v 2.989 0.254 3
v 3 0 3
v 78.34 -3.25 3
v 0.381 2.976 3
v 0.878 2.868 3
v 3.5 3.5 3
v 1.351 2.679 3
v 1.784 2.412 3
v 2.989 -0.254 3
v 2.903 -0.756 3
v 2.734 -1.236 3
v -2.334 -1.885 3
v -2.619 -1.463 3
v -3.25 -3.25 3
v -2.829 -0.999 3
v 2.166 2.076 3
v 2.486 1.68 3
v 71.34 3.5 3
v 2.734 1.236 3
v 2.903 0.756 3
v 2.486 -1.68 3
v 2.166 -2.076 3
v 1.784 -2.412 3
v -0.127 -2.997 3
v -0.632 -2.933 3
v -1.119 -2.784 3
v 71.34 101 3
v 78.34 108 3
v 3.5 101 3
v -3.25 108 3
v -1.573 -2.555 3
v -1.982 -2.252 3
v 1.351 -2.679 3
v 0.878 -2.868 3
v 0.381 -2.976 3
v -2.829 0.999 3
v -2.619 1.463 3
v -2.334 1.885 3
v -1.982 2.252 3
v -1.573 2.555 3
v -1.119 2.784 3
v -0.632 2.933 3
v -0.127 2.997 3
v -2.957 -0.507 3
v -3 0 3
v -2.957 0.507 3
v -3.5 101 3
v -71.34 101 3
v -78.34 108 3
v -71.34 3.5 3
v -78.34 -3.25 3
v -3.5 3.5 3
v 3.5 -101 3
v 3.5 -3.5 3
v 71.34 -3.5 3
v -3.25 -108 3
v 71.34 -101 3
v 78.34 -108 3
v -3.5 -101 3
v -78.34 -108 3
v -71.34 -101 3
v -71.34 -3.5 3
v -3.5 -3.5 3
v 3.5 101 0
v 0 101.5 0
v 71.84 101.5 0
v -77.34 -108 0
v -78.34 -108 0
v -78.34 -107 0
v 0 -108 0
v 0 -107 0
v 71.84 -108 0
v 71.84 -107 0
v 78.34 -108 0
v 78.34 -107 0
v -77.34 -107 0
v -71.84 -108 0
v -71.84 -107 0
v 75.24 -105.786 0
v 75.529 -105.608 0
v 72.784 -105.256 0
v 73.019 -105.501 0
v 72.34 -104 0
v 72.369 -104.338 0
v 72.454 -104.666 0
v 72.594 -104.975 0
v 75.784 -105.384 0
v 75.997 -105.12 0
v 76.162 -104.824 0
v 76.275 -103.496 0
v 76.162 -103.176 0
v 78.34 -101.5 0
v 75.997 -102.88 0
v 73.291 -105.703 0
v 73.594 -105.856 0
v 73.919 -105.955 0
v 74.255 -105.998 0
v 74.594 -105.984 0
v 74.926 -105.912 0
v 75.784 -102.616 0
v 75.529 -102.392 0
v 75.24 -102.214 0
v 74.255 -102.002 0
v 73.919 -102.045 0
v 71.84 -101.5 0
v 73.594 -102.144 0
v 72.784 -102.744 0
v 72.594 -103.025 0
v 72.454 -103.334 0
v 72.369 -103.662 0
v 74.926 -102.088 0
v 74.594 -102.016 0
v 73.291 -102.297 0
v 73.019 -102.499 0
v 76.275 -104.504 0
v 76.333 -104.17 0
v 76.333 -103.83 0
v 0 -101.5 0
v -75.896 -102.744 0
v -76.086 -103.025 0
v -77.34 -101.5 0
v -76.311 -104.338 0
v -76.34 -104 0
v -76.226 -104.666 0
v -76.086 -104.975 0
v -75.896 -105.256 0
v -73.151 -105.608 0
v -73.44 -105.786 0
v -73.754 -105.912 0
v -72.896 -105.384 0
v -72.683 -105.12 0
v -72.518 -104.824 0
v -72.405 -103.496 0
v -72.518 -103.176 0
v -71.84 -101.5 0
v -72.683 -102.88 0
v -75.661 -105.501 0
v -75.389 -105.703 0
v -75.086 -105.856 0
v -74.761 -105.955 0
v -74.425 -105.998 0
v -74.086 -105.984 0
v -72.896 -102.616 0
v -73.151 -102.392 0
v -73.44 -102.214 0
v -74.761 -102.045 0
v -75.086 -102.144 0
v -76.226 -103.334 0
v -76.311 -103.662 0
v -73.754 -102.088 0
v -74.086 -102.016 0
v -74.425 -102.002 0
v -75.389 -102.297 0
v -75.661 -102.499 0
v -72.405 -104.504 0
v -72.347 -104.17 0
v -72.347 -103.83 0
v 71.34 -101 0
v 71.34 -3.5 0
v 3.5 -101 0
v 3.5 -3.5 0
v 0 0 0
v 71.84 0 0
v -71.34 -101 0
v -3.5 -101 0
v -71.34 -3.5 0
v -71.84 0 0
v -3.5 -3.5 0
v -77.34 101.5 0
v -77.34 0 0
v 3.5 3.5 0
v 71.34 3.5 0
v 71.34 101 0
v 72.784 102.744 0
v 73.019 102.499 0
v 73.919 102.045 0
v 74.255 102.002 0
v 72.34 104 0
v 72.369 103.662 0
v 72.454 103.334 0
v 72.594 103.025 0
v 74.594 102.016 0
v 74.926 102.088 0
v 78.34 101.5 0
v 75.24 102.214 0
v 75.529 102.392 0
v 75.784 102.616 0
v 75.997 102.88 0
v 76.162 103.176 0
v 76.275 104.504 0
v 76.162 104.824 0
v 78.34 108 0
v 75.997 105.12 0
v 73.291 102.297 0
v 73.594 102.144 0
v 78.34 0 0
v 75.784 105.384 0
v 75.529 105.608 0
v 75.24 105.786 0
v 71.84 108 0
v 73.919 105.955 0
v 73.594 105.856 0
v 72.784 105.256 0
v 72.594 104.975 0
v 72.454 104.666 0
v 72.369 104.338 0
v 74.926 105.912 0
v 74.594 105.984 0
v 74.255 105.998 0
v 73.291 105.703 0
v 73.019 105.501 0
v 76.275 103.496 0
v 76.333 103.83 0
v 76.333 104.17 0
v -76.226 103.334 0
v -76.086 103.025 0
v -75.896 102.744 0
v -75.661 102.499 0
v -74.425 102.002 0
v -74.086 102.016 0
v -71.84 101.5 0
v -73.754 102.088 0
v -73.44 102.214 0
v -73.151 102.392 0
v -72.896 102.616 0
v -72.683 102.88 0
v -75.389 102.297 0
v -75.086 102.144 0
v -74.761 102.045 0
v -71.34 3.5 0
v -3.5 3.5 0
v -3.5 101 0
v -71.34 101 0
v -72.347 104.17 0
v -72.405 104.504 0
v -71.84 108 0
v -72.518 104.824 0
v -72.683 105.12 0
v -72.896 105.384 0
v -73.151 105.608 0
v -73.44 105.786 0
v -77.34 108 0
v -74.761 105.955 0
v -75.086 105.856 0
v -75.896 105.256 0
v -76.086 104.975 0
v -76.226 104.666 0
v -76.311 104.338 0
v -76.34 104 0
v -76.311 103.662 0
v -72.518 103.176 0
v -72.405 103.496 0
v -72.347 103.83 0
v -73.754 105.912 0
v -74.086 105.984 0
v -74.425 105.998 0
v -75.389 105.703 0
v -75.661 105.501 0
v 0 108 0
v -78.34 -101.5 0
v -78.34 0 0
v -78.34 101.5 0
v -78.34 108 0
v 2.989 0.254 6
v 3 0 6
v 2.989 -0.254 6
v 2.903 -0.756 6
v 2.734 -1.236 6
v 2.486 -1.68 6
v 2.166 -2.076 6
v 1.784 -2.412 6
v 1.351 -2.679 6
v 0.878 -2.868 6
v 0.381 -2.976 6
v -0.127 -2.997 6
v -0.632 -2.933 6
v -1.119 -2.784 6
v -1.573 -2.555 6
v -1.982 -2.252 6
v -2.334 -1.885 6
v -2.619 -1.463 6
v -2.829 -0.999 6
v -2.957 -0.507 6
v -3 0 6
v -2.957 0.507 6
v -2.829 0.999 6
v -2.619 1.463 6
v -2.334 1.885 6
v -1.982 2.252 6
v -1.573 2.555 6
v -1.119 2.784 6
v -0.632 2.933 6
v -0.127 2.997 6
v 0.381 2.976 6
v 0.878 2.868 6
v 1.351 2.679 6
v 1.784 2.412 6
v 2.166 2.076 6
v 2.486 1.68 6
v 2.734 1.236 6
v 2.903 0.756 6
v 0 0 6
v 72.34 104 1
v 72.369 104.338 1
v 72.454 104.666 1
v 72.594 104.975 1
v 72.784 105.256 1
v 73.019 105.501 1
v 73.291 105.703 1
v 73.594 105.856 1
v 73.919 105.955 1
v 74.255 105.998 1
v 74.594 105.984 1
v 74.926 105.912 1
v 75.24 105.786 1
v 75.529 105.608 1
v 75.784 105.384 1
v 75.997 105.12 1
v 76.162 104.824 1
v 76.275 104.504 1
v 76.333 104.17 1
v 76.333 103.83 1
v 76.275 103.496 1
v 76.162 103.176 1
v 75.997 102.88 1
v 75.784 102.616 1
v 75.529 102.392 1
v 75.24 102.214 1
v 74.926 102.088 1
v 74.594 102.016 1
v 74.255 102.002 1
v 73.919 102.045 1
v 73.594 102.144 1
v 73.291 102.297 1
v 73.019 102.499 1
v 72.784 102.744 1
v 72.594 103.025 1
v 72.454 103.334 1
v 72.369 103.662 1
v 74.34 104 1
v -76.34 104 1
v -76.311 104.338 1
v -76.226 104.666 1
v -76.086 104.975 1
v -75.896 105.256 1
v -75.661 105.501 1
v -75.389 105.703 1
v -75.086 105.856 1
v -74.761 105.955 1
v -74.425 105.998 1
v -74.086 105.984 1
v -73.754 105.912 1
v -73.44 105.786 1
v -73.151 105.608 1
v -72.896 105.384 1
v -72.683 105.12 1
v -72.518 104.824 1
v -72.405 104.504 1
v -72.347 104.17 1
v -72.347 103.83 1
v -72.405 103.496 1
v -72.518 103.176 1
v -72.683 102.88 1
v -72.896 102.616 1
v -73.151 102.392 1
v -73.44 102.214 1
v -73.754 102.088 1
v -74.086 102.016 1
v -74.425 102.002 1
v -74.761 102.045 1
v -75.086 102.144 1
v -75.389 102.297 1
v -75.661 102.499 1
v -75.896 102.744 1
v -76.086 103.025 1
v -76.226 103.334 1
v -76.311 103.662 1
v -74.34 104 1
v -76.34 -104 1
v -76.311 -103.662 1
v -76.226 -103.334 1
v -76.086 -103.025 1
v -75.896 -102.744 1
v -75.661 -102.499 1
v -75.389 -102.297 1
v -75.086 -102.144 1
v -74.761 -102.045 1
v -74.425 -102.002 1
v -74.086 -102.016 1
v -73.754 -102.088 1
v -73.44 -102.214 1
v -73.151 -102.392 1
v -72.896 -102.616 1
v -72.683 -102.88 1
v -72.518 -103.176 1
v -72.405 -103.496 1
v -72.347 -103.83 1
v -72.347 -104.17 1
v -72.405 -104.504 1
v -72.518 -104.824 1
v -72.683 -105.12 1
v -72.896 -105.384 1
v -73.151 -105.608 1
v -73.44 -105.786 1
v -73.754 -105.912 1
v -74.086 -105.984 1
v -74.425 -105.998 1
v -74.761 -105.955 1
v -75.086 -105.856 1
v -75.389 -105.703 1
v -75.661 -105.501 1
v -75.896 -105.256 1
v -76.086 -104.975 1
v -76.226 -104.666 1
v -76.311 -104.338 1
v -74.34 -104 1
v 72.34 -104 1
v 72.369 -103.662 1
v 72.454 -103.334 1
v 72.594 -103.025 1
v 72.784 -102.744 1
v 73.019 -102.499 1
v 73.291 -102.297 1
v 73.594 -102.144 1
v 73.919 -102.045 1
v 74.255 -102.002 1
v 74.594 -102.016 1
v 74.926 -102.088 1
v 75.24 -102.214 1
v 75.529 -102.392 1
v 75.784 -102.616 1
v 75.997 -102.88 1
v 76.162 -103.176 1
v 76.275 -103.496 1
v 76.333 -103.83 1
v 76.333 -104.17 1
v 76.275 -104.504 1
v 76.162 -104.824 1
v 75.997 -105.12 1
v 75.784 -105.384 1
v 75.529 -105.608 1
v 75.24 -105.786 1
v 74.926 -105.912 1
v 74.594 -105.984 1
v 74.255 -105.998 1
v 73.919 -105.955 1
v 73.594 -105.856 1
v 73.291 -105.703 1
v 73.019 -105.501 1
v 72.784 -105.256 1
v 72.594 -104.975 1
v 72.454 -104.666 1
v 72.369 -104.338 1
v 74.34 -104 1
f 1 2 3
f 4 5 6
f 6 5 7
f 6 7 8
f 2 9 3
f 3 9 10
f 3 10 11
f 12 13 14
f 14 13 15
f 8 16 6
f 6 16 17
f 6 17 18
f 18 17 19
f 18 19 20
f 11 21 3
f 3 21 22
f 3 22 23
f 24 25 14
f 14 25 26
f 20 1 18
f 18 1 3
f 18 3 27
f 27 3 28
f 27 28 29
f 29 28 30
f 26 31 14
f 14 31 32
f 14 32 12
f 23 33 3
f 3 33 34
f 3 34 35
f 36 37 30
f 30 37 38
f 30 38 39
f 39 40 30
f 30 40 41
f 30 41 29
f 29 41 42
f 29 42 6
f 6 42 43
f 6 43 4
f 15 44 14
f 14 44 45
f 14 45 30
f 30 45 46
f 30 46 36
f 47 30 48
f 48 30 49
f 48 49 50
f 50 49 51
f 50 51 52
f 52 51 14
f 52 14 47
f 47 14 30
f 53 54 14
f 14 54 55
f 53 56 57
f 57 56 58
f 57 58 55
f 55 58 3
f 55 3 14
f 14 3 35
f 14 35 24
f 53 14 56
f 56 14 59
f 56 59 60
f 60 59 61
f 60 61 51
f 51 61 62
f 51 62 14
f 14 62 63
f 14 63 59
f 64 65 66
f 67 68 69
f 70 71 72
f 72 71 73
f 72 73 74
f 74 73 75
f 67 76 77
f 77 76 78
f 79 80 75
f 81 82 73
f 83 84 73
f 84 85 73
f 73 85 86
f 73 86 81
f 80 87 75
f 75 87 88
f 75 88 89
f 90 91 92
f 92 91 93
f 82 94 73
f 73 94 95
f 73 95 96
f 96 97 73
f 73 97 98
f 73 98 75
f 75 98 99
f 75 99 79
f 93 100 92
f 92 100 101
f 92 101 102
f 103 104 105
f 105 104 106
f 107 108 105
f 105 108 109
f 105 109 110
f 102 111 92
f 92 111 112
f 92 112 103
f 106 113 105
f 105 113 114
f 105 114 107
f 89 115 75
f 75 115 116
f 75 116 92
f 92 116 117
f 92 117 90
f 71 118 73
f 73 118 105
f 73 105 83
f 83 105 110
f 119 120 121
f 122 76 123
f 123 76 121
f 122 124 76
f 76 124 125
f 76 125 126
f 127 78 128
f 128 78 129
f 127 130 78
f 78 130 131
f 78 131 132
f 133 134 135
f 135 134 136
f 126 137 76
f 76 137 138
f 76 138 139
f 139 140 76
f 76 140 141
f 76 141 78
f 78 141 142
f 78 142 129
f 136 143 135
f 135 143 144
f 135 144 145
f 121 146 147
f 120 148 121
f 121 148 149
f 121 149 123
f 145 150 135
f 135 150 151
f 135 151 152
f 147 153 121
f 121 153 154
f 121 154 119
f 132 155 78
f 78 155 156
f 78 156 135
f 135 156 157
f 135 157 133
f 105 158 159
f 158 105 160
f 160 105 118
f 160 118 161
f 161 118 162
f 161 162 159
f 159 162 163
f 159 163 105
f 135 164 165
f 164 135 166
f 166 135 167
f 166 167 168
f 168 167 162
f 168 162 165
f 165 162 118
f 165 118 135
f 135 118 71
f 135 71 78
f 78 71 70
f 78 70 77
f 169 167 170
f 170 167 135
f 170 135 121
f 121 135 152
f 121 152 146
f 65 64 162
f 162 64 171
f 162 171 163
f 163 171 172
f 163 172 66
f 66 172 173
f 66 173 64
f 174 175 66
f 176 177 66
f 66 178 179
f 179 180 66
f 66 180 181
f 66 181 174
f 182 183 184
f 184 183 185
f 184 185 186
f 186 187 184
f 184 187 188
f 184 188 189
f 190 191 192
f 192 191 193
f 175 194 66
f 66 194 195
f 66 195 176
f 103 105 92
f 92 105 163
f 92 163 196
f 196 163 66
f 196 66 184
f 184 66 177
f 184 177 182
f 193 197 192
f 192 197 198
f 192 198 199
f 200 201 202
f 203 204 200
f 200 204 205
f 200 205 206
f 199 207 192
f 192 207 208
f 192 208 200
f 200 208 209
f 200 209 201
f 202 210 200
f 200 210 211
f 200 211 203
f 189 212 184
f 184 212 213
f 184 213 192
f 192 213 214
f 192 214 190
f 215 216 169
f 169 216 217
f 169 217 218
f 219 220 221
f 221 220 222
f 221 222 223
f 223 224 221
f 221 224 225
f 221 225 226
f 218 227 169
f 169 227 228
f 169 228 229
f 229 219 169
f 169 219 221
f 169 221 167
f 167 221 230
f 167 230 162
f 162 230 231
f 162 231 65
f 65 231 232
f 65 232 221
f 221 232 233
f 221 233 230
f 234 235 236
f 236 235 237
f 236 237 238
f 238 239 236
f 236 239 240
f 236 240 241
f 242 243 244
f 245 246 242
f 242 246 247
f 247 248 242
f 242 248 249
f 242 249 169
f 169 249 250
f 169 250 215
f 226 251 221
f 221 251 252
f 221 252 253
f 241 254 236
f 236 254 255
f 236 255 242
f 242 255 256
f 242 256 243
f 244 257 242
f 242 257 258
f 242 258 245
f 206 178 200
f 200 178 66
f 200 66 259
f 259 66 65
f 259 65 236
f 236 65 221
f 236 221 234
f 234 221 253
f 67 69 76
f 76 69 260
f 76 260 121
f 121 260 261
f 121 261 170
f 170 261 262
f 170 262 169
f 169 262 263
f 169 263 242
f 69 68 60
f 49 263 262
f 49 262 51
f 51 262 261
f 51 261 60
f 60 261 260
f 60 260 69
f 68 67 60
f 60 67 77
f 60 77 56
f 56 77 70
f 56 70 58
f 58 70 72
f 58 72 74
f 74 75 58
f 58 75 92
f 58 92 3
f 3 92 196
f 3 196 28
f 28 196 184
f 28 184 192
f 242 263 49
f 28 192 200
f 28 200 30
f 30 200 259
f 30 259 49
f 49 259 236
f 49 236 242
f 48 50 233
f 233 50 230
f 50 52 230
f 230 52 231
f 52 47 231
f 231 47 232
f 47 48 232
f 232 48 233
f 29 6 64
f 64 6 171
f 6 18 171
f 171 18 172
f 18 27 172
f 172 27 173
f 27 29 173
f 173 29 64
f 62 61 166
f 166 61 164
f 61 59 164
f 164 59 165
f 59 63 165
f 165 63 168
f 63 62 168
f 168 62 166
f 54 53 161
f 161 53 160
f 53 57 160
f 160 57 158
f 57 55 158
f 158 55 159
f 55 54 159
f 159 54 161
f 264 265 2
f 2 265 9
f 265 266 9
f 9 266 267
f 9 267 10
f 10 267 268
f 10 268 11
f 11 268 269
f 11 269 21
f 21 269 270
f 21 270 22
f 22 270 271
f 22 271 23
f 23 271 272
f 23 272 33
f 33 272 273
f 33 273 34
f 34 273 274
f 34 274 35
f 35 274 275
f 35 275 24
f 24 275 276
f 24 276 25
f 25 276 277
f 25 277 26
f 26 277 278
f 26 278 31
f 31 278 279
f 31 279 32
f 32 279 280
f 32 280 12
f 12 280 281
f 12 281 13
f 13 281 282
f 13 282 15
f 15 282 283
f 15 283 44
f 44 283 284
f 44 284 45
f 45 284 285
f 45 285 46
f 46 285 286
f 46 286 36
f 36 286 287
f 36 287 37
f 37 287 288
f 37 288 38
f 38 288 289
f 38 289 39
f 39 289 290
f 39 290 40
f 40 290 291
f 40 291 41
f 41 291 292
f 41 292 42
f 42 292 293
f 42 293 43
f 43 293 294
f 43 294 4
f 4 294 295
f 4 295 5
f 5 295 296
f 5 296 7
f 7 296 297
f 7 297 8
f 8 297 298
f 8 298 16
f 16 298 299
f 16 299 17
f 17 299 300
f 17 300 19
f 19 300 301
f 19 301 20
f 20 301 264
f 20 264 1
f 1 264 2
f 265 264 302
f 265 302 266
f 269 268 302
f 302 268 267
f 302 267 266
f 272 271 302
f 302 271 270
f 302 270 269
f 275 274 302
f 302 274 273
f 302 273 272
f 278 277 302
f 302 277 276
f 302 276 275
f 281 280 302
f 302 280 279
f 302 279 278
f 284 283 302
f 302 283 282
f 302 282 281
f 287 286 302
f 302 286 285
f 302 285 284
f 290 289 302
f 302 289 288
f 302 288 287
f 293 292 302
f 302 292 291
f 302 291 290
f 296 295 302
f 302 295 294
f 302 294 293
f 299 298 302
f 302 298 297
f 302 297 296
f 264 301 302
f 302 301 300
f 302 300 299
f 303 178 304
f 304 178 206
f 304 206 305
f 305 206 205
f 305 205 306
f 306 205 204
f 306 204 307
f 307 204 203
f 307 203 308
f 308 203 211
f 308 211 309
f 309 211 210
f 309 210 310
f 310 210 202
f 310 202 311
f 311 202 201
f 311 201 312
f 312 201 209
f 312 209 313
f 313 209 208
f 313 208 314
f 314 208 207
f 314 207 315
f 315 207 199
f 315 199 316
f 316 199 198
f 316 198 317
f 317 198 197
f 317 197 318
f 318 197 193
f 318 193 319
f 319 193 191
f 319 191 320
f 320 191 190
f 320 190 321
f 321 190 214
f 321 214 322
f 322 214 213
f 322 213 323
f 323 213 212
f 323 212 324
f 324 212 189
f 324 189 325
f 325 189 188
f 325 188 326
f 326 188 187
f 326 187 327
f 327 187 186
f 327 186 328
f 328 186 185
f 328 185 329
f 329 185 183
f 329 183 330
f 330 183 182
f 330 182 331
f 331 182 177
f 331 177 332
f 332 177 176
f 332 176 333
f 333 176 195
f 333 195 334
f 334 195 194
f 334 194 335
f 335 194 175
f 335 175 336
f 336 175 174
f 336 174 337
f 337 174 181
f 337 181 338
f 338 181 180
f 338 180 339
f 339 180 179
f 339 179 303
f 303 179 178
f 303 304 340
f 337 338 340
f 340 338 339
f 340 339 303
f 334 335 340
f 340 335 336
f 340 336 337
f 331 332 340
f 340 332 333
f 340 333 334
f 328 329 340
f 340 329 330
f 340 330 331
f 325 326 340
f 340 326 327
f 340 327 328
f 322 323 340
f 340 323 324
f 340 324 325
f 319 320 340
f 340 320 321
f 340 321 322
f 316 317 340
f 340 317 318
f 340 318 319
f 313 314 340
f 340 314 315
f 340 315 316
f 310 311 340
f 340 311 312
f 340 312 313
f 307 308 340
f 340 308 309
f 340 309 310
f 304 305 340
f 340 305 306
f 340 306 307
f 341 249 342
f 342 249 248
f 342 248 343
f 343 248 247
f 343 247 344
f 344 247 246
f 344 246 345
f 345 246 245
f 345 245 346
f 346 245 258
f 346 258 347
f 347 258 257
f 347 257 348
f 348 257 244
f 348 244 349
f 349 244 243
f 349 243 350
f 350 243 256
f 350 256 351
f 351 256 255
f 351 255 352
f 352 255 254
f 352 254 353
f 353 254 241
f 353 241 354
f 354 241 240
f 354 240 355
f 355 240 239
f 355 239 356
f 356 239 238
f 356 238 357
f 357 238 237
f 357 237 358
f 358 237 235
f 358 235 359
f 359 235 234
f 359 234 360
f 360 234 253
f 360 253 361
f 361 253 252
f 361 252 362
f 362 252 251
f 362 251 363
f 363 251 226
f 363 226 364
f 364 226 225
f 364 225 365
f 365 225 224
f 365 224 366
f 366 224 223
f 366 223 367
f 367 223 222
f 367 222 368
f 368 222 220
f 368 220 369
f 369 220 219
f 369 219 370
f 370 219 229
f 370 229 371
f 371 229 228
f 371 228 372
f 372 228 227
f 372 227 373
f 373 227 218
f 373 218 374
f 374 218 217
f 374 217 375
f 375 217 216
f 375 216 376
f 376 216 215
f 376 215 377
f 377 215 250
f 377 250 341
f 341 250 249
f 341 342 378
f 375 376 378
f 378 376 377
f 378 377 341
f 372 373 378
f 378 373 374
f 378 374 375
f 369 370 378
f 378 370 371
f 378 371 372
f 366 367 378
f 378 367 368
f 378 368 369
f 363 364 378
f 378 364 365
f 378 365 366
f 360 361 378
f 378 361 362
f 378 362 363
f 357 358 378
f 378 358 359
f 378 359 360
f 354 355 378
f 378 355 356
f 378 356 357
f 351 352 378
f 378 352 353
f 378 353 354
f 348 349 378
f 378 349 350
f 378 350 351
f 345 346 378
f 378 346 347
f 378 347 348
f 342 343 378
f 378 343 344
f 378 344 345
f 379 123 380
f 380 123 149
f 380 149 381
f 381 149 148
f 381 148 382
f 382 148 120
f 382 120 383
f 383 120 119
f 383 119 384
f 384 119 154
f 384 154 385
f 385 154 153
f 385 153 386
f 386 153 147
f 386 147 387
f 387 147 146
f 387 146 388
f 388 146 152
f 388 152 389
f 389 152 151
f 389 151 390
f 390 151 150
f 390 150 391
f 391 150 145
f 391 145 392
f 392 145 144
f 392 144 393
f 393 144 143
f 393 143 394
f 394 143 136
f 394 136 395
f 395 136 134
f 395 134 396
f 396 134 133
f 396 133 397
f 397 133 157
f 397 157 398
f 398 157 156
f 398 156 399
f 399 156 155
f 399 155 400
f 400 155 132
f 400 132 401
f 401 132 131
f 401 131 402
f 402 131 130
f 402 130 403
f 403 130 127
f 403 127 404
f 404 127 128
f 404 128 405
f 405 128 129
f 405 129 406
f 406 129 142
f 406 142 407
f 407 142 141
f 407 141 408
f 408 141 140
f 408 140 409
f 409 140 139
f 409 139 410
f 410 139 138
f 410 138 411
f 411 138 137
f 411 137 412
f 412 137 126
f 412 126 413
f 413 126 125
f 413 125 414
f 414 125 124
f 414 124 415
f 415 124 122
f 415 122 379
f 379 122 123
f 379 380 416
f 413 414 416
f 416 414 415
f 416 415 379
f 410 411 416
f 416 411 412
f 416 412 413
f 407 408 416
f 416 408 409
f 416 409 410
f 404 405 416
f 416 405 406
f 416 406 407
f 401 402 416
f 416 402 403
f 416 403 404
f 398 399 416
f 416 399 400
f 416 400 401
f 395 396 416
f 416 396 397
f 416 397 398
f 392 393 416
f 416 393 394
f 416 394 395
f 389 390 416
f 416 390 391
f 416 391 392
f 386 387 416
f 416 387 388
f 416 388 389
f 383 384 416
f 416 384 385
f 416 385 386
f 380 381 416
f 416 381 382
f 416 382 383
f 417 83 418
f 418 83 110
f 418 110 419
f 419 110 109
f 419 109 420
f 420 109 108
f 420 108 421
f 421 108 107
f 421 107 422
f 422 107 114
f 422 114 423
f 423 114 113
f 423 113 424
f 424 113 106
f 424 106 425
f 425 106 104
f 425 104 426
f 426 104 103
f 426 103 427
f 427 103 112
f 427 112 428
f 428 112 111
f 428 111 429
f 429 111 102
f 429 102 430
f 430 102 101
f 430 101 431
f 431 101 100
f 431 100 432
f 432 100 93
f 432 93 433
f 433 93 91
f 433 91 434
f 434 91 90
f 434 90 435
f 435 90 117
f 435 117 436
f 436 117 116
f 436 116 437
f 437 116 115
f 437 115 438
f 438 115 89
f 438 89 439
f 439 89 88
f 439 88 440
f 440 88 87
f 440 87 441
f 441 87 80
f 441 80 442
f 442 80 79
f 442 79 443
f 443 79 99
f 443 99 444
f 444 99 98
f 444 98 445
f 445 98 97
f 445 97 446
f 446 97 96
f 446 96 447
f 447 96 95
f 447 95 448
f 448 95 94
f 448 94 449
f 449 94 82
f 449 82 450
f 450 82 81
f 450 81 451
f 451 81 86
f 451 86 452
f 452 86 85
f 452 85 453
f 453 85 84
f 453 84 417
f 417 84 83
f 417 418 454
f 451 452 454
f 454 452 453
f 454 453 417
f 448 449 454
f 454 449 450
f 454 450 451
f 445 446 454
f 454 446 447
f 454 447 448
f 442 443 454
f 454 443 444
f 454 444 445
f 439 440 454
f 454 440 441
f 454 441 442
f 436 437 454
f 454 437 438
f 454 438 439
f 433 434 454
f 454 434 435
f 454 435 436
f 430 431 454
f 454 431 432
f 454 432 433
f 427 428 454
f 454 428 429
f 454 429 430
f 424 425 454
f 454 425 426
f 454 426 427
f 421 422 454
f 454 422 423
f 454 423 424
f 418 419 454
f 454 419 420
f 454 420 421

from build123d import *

# Parameters (mm, degrees)
ESBO_O1_W                = 156.68
ESBO_O1_H                = 216
ESBO_O1_W_2              = 67.84
ESBO_O1_H_2              = 97.5
RESSALTO_EXTRUS_O1_DEPTH = 3
ESBO_O2_R                = 3
RESSALTO_EXTRUS_O2_DEPTH = 3
ESBO_O3_R                = 2
CORTE_EXTRUS_O1_DEPTH    = 1


with BuildPart() as part:
    # Esboço1 → Ressalto-extrusão1 (new body)
    with BuildSketch(Plane.XY):
        Rectangle(ESBO_O1_W, ESBO_O1_H)
        with Locations((-37.42, 52.25)):
            Rectangle(ESBO_O1_W_2, ESBO_O1_H_2, mode=Mode.SUBTRACT)
        with Locations((37.42, 52.25)):
            Rectangle(ESBO_O1_W_2, ESBO_O1_H_2, mode=Mode.SUBTRACT)
        with Locations((-37.42, -52.25)):
            Rectangle(ESBO_O1_W_2, ESBO_O1_H_2, mode=Mode.SUBTRACT)
        with Locations((37.42, -52.25)):
            Rectangle(ESBO_O1_W_2, ESBO_O1_H_2, mode=Mode.SUBTRACT)
    extrude(amount=RESSALTO_EXTRUS_O1_DEPTH)

    # Esboço2 → Ressalto-extrusão2 (add)
    with BuildSketch(Plane.XY.offset(3)):
        Circle(ESBO_O2_R)
    extrude(amount=RESSALTO_EXTRUS_O2_DEPTH)

    # Esboço3 → Corte-extrusão1 (cut)
    with BuildSketch(Plane(origin=(0, 0, 0), x_dir=(-1, 0, 0), z_dir=(0, 0, -1))):
        with Locations((-74.34, 104)):
            Circle(ESBO_O3_R)
        with Locations((74.34, 104)):
            Circle(ESBO_O3_R)
        with Locations((74.34, -104)):
            Circle(ESBO_O3_R)
        with Locations((-74.34, -104)):
            Circle(ESBO_O3_R)
    extrude(amount=-CORTE_EXTRUS_O1_DEPTH, mode=Mode.SUBTRACT)


solid = part.part
